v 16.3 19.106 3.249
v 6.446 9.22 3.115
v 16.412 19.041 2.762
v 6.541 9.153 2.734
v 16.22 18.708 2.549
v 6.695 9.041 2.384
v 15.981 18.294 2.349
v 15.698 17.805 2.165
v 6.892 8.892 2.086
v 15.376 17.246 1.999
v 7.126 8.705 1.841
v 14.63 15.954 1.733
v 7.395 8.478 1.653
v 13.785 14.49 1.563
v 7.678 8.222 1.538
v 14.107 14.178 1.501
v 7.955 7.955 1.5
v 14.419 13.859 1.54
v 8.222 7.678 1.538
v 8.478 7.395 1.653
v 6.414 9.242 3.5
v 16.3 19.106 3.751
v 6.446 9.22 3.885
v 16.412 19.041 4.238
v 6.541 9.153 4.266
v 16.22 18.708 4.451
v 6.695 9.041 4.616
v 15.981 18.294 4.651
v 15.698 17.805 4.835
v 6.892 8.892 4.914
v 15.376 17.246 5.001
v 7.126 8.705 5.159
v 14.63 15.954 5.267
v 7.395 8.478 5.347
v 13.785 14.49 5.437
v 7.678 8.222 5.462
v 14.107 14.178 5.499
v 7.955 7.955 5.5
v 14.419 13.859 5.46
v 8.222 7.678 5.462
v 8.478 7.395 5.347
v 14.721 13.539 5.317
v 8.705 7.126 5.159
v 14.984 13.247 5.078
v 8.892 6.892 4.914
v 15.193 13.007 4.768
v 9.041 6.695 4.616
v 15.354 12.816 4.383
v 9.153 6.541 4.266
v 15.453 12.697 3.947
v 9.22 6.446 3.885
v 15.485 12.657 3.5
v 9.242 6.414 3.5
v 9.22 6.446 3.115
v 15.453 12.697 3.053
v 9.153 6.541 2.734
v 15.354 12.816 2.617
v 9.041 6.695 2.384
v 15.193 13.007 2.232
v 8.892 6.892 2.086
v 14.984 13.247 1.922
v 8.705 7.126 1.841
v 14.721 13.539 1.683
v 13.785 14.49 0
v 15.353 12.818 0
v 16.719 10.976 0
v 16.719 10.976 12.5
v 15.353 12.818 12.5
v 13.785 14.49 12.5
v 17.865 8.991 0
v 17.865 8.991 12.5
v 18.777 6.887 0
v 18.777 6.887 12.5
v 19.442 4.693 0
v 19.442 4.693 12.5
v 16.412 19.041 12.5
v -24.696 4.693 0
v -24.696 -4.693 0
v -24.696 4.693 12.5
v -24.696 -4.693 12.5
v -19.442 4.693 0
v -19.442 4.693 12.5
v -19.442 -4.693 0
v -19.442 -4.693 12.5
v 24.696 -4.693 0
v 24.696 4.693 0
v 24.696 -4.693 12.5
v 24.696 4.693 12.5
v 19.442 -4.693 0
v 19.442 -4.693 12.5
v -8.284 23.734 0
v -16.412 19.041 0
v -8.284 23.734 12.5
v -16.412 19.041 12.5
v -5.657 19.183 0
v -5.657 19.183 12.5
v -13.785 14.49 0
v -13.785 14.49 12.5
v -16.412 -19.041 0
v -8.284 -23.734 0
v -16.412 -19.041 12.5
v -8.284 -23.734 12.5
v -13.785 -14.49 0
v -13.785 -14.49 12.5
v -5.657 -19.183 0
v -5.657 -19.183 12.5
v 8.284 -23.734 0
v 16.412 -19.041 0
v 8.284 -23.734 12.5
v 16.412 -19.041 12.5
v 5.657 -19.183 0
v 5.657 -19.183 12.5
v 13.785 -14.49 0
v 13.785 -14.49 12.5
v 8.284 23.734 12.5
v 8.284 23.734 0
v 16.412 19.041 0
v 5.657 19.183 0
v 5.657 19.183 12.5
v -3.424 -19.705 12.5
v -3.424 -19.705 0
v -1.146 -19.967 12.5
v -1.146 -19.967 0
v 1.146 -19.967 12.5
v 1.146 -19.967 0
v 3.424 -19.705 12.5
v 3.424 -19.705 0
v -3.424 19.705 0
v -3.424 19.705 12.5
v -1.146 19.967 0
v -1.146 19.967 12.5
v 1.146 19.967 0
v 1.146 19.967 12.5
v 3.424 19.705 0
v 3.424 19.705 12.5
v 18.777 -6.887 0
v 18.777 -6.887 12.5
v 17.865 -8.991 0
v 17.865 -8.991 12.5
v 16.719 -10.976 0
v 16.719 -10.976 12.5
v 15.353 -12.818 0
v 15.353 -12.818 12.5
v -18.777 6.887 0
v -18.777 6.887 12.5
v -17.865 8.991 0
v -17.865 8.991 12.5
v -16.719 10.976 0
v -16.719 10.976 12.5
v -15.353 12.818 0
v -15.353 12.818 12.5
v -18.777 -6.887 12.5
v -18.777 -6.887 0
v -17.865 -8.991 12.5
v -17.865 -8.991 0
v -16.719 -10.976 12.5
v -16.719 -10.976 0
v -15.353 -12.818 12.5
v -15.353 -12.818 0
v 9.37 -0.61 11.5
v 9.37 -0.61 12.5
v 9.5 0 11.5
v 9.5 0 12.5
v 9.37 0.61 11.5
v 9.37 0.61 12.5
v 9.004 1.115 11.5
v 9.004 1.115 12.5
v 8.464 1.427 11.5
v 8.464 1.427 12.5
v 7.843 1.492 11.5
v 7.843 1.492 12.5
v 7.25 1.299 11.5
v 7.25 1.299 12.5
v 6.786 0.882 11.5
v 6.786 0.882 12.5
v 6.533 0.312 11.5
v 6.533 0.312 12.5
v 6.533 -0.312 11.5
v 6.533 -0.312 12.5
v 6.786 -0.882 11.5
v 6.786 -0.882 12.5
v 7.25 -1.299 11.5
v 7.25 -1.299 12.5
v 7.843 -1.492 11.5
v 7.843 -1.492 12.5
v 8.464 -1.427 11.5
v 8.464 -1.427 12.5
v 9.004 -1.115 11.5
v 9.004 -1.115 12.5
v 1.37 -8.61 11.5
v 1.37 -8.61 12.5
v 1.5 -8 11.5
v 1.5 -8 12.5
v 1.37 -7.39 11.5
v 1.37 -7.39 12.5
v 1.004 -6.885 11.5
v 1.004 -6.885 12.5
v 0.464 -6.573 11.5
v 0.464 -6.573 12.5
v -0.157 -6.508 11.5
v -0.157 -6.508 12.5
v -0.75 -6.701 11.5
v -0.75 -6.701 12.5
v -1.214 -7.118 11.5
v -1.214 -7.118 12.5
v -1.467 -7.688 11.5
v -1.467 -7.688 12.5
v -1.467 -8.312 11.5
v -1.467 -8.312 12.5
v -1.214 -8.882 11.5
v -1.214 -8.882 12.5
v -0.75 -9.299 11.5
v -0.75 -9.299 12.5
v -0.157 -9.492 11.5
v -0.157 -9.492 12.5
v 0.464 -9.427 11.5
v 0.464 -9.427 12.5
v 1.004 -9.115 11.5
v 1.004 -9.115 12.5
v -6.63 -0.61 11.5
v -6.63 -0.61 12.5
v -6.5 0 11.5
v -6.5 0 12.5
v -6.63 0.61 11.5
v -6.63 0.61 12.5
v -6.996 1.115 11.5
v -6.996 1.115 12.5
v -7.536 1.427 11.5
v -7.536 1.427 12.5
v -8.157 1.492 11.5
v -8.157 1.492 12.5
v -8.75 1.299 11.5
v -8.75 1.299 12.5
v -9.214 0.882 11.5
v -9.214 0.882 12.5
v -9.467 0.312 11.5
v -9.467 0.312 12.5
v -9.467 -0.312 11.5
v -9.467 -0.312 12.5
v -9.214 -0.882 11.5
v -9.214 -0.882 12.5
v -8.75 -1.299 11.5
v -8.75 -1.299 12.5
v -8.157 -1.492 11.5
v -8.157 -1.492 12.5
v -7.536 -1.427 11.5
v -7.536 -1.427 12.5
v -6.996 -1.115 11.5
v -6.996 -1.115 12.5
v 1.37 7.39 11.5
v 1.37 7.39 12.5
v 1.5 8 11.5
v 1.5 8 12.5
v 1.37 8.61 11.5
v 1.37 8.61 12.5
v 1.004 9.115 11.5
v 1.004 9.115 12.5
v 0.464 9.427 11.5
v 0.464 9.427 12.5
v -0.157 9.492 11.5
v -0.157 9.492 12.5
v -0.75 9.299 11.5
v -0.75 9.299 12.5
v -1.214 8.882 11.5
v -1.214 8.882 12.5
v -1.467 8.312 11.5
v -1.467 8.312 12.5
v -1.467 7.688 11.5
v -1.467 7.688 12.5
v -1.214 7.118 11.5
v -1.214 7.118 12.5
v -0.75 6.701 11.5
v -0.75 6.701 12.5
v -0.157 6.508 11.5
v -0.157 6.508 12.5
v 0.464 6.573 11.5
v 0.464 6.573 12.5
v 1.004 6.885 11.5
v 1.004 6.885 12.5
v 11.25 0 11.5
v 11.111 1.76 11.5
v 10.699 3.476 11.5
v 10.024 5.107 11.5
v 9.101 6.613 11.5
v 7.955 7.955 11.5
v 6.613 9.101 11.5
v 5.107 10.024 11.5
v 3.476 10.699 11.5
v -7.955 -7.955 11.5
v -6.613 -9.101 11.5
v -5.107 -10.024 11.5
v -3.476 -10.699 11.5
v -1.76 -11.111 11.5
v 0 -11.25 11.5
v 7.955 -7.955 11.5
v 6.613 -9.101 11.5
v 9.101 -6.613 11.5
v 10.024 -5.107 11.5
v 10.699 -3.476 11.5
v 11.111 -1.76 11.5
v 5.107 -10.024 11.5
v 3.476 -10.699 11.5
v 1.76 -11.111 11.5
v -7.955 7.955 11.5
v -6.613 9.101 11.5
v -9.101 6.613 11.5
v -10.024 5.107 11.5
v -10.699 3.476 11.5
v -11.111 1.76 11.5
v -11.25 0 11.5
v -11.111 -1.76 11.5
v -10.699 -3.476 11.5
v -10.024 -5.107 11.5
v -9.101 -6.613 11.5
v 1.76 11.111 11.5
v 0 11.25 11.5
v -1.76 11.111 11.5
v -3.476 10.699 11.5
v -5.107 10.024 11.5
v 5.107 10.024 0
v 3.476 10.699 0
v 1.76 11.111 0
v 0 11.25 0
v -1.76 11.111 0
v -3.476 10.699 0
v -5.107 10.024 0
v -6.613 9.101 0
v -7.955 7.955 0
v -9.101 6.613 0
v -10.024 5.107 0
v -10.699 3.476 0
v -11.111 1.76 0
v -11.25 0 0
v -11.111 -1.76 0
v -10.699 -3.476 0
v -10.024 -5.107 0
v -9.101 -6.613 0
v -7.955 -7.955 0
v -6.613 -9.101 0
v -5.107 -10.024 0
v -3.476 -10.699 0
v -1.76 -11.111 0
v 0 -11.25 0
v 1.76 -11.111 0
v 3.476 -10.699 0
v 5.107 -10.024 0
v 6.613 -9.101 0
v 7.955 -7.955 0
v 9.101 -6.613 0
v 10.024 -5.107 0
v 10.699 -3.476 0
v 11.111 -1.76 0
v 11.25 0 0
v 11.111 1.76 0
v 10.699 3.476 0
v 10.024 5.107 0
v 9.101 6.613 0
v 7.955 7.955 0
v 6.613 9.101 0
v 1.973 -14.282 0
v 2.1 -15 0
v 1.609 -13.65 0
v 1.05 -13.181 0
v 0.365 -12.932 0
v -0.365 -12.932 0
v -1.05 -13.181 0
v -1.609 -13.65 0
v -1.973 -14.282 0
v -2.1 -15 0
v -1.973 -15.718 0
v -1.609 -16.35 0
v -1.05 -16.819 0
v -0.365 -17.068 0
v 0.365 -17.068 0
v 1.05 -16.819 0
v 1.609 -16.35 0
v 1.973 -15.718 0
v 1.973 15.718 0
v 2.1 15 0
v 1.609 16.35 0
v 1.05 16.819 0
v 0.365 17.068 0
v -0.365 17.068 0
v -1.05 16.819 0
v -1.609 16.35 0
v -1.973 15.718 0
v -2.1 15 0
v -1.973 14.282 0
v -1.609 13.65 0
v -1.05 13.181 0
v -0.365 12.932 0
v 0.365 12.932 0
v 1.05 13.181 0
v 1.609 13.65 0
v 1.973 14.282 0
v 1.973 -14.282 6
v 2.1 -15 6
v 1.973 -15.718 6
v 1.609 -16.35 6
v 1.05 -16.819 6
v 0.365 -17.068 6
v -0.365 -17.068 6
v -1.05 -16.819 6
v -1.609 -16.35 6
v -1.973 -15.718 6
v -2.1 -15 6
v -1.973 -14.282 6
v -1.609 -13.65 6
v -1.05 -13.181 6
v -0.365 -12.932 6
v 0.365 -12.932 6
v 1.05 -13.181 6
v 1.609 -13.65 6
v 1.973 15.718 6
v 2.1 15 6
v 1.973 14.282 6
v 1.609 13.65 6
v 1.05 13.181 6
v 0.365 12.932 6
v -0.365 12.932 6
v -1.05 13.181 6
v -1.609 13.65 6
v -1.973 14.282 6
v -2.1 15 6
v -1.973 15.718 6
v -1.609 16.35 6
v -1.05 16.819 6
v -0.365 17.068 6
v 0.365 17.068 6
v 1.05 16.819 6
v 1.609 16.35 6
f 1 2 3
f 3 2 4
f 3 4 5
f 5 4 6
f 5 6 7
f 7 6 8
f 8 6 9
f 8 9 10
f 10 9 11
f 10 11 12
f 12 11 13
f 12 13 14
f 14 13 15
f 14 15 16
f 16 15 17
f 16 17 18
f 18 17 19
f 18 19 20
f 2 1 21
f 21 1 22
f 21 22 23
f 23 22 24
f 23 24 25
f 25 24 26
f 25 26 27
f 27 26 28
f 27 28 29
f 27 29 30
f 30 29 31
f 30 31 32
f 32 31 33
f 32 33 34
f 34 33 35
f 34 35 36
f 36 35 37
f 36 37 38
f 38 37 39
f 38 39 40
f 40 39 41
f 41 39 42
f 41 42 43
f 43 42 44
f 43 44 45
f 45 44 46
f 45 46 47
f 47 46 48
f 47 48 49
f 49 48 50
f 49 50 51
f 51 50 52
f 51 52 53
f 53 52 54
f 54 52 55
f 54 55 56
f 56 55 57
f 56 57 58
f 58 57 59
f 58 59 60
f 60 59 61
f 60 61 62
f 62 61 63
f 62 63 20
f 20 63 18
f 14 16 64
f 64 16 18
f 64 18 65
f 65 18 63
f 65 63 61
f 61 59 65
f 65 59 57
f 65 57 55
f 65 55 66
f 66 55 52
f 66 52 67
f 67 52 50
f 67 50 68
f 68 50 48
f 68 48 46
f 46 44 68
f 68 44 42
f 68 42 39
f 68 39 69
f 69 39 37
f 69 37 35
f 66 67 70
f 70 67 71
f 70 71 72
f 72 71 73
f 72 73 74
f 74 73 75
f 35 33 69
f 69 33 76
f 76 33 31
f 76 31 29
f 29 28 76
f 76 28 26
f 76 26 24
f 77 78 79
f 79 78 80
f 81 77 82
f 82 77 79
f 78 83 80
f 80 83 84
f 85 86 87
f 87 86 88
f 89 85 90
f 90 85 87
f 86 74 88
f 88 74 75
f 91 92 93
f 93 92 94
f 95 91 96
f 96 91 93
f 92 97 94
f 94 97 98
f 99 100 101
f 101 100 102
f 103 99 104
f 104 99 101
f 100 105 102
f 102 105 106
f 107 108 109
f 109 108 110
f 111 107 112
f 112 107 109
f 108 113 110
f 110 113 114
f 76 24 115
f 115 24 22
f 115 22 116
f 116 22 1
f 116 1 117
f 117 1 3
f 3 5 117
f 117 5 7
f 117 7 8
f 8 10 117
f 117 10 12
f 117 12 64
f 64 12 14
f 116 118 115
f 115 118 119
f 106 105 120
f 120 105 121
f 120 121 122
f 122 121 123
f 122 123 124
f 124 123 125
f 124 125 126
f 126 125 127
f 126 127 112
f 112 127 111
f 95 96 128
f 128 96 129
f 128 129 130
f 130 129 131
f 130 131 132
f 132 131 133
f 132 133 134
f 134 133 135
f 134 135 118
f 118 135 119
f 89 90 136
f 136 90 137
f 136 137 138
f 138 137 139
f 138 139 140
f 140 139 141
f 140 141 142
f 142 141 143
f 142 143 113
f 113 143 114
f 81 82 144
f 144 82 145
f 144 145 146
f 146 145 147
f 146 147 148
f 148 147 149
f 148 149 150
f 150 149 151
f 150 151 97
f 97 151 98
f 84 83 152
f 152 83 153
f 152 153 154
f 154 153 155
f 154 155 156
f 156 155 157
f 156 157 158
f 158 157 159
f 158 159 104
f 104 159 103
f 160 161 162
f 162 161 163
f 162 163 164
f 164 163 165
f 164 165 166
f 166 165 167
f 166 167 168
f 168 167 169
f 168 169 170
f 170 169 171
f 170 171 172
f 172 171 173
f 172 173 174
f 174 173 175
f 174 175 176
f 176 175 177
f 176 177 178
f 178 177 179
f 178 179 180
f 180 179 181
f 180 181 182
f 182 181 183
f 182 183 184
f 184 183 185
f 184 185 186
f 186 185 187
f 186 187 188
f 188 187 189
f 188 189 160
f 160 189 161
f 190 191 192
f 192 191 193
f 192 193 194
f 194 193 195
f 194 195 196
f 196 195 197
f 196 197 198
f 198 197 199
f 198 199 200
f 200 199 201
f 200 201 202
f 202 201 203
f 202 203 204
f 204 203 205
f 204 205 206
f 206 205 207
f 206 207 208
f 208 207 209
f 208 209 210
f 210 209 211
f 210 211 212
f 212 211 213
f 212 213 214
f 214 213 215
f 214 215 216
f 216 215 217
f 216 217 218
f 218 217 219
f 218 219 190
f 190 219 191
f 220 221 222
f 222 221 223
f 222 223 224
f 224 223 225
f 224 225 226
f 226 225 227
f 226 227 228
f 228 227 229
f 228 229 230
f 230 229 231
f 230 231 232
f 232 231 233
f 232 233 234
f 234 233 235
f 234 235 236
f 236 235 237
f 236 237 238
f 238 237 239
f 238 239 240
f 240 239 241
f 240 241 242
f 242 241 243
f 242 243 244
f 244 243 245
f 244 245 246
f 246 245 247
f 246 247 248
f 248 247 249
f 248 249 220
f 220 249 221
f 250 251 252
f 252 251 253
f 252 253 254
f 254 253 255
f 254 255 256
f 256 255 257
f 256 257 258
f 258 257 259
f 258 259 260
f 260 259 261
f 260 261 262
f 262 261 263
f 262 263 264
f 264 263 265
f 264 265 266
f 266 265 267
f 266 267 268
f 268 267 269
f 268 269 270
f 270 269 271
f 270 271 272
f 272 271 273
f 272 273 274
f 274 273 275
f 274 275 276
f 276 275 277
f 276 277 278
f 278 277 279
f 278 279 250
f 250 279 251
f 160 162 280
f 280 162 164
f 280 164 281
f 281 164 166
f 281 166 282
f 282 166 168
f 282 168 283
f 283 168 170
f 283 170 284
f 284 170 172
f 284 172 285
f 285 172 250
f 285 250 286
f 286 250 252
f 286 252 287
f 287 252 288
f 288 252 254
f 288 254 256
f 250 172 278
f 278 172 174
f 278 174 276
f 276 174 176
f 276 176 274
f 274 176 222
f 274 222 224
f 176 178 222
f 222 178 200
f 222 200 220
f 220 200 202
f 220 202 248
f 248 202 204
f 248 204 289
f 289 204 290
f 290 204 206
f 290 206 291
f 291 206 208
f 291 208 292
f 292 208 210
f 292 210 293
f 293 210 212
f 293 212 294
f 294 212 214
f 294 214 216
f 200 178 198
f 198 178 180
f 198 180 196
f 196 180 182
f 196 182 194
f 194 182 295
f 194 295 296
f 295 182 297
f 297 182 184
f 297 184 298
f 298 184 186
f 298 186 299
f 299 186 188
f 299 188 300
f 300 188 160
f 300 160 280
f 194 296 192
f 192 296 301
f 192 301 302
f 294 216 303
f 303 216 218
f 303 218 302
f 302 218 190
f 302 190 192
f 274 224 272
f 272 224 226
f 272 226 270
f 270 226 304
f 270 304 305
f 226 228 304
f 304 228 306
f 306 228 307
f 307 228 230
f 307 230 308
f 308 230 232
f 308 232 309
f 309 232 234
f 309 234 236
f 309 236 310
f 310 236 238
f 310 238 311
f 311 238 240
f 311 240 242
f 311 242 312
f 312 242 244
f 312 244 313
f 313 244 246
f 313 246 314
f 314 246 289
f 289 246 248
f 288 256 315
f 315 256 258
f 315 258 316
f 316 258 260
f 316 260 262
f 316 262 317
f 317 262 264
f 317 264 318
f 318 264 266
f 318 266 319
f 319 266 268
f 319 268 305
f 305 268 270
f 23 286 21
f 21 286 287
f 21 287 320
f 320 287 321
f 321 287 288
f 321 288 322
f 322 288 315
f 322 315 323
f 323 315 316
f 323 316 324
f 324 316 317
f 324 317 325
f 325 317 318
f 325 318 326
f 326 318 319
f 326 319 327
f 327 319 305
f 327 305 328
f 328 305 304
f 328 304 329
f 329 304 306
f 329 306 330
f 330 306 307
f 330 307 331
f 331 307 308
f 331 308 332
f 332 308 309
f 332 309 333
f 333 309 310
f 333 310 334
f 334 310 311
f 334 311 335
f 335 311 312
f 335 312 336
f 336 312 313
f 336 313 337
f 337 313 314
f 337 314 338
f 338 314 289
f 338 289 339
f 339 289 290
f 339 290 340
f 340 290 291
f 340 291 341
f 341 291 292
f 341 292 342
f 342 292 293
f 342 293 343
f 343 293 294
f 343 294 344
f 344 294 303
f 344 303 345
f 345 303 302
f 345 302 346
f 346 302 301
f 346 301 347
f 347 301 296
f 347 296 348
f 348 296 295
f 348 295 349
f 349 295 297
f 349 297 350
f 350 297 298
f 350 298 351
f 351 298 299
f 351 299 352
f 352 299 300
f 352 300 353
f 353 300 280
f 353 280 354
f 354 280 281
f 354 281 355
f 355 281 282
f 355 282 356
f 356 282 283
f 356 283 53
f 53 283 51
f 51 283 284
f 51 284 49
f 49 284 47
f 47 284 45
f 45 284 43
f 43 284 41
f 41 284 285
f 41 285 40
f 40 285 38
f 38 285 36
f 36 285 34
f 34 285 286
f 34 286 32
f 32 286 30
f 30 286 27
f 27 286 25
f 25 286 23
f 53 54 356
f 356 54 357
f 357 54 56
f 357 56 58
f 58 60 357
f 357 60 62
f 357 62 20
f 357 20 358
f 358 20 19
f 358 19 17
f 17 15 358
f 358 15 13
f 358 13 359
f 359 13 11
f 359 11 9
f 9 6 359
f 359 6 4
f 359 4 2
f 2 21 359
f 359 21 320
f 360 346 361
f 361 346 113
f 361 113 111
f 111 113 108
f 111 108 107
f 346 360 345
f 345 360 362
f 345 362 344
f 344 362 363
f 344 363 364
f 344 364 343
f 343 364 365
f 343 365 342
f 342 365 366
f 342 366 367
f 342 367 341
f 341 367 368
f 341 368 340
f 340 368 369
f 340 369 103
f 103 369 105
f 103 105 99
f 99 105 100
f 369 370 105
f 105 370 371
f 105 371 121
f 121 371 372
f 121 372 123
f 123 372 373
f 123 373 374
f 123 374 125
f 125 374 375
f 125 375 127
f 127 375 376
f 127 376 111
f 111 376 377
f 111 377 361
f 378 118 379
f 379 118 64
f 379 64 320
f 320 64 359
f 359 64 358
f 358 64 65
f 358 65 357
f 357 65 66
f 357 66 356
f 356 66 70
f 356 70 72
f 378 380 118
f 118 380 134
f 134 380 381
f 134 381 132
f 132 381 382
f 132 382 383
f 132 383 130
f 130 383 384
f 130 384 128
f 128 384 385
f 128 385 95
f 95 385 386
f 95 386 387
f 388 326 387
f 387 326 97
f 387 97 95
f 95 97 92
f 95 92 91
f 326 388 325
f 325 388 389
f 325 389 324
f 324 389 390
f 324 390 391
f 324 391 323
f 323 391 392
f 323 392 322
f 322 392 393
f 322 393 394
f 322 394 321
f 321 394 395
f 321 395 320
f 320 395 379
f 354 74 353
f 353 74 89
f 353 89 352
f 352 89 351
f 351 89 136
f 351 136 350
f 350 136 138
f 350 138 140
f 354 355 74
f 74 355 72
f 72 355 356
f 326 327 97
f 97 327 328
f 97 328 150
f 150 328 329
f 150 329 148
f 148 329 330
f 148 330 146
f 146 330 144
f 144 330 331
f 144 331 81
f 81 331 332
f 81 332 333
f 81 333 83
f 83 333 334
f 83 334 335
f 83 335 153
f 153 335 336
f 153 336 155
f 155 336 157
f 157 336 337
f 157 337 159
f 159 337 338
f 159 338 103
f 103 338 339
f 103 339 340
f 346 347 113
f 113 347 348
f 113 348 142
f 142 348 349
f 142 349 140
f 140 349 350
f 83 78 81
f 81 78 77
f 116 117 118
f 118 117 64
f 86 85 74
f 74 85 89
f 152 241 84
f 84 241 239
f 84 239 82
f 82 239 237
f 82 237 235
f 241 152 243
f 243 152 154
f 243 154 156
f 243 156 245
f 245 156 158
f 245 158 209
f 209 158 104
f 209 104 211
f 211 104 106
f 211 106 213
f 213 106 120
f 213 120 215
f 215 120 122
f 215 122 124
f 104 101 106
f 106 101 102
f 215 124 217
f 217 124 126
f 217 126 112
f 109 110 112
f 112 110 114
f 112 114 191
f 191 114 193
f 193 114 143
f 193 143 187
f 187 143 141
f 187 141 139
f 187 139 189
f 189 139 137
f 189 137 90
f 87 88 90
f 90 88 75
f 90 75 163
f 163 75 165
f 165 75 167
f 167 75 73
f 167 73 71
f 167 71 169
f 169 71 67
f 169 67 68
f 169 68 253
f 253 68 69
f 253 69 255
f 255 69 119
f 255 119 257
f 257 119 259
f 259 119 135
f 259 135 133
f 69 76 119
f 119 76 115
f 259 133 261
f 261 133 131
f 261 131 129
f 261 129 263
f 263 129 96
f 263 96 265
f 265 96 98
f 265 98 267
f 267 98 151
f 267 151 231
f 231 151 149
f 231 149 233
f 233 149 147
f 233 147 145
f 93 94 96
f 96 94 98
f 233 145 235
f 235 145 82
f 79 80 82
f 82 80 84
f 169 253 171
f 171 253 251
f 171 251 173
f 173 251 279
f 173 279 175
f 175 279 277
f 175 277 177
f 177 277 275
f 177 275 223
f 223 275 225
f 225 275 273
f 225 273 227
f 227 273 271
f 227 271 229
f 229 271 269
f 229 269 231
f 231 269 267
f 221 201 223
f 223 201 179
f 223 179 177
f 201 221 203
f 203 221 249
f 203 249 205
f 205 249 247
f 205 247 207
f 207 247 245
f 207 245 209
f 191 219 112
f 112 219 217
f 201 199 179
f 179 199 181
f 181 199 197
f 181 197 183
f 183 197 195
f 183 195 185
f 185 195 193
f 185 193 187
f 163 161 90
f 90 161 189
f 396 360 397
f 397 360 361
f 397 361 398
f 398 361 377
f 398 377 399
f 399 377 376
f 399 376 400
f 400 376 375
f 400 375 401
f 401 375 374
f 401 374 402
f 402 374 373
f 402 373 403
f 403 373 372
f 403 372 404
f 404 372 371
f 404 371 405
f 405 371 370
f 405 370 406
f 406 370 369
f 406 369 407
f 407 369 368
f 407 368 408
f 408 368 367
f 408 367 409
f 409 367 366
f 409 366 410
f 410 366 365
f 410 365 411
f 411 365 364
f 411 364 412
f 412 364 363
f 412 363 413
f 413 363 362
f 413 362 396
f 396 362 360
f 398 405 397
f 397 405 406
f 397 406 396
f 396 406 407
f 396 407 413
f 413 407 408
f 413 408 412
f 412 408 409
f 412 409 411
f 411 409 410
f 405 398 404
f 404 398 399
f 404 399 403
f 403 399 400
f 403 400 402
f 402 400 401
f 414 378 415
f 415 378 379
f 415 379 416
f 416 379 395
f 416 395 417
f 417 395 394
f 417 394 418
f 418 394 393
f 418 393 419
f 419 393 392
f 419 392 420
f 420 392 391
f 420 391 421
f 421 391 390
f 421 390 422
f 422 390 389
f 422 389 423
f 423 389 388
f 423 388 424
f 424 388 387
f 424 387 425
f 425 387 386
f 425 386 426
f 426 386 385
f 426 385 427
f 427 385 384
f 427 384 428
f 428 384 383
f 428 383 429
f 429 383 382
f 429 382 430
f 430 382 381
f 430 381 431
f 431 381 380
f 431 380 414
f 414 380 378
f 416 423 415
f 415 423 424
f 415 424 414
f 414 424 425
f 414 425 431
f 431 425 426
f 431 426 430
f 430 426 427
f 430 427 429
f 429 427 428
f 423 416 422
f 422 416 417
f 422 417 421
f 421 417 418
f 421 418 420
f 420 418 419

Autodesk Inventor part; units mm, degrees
ref_plane "YZ Plane" through (0, 0, 0) normal (1, 0, 0) x (0, 1, 0)
sketch "Эскиз1" plane through (0, 0, 0) normal (0, 0, 1) x (1, 0, 0)
  line L0 (0, 0) -> (34.5691, 5.4752) construction
  line L1 (0, 0) -> (35, 0) construction
  line L2 (0, 0) -> (34.5691, -5.4752) construction
  circle A0 centre (0, 0) radius 11.25
  circle A1 centre (0, 0) radius 15
  circle A2 centre (0, 0) radius 20
  circle A3 centre (0, 0) radius 30.0525
  circle A4 centre (0, 0) radius 32.0038
  circle A5 centre (0, 0) radius 35
  line L3 (0, 0) -> (17.5, -30.3109) construction
  circle A6 centre (0, -8) radius 1.5
  circle A7 centre (-8, 0) radius 1.5
  line L4 (0, 0) -> (-35, 0) construction
  line L5 (-29.6307, -4.693) -> (-19.4416, -4.693) construction
  line L6 (-29.6307, -4.693) -> (-19.4416, -4.693)
  line L7 (-29.6839, -4.693) -> (-29.6839, 4.693)
  line L8 (-19.4416, 4.693) -> (-34.6839, 4.693) construction
  line L9 (-19.4416, -4.693) -> (-34.6839, -4.693) construction
  line L10 (10.751, 28.0074) -> (5.6565, 19.1834) construction
  line L11 (5.6565, 19.1834) -> (13.2777, 32.3837) construction
  line L12 (-5.6565, 19.1834) -> (-13.2777, 32.3837) construction
  circle A8 centre (0, 8) radius 1.5
  line L13 (0, 0) -> (-17.5, 30.3109) construction
  line L14 (-5.6565, 19.1834) -> (-13.2777, 32.3837)
  line L15 (0, 0) -> (17.5, 30.3109) construction
  line L16 (0, 0) -> (-17.5, -30.3109) construction
  line L17 (5.6565, 19.1834) -> (13.2777, 32.3837)
  line L18 (13.3758, 26.5536) -> (16.0133, 31.1219)
  line L19 (16.3082, 24.8605) -> (18.9457, 29.4289)
  line L20 (18.9457, 29.4289) -> (17.4457, 26.8308) construction
  line L21 (29.6307, 4.693) -> (19.4416, 4.693)
  line L22 (18.8796, -23.3144) -> (13.7851, -14.4904) construction
  line L23 (13.7851, -14.4904) -> (21.4063, -27.6907) construction
  line L24 (29.6839, 4.693) -> (29.6839, 1.693)
  line L25 (29.6839, 4.693) -> (29.6839, -4.693)
  line L26 (29.6839, -4.693) -> (29.6839, -1.693) construction
  circle A9 centre (8, 0) radius 1.5
  line L27 (-18.8796, 23.3144) -> (-13.7851, 14.4904) construction
  line L28 (-13.7851, 14.4904) -> (-21.4063, 27.6907) construction
  line L29 (-18.8796, 23.3144) -> (-13.7851, 14.4904)
  line L30 (-13.7851, 14.4904) -> (-21.4063, 27.6907)
  line L31 (-18.9063, 23.3605) -> (-10.7777, 28.0536)
  line L32 (-16.3082, 24.8605) -> (-18.9457, 29.4289)
  line L33 (-13.3758, 26.5536) -> (-16.0133, 31.1219)
  line L34 (-13.7851, -14.4904) -> (-21.4063, -27.6907) construction
  line L35 (-10.751, -28.0074) -> (-5.6565, -19.1834) construction
  line L36 (-13.7851, -14.4904) -> (-21.4063, -27.6907)
  line L37 (-10.751, -28.0074) -> (-5.6565, -19.1834)
  line L38 (13.7851, 14.4904) -> (21.4063, 27.6907) construction
  line L39 (21.4063, 27.6907) -> (20.1674, 25.5449) construction
  line L40 (10.7777, 28.0536) -> (18.9063, 23.3605)
  line L41 (13.7851, 14.4904) -> (21.4063, 27.6907)
  line L42 (10.751, 28.0074) -> (5.6565, 19.1834)
  line L43 (0, 0) -> (21.2118, 27.8399) construction
  line L44 (0, 0) -> (8, 0) construction
  line L45 (0, 0) -> (0, 8) construction
  line L46 (-10.7777, -28.0536) -> (-18.9063, -23.3605)
  line L47 (-13.3758, -26.5536) -> (-16.0133, -31.1219)
  line L48 (-16.3082, -24.8605) -> (-18.9457, -29.4289)
  line L49 (-5.6565, -19.1834) -> (-13.2777, -32.3837) construction
  line L50 (5.6565, -19.1834) -> (13.2777, -32.3837) construction
  line L51 (-5.6565, -19.1834) -> (-13.2777, -32.3837)
  line L52 (18.8796, -23.3144) -> (13.7851, -14.4904)
  line L53 (5.6565, -19.1834) -> (13.2777, -32.3837)
  line L54 (16.3082, -24.8605) -> (18.9457, -29.4289)
  line L55 (13.7851, -14.4904) -> (21.4063, -27.6907)
  line L56 (13.3758, -26.5536) -> (16.0133, -31.1219)
  line L57 (18.9063, -23.3605) -> (10.7777, -28.0536)
  line L58 (27.6414, 16.1308) -> (28.831, 19.8437)
  line L59 (24.938, 20.0584) -> (28.831, 19.8437)
  line L60 (24.7499, 20.2901) -> (25.3388, 24.1443)
  line L61 (21.4607, 23.742) -> (25.3388, 24.1443)
  line L62 (17.4457, 26.8308) -> (21.2118, 27.8399)
  line L63 (21.2384, 23.9411) -> (21.2118, 27.8399)
  line L64 (-19.4416, 4.693) -> (-34.6839, 4.693)
  line L65 (-17.4453, 26.8311) -> (-21.2113, 27.8403)
  line L66 (-21.238, 23.9415) -> (-21.2113, 27.8403)
  line L67 (-21.4603, 23.7424) -> (-25.3384, 24.1447)
  line L68 (-24.7496, 20.2905) -> (-25.3384, 24.1447)
  line L69 (-24.9377, 20.0588) -> (-28.8307, 19.8442)
  line L70 (-27.6411, 16.1312) -> (-28.8307, 19.8442)
  line L71 (-27.7903, 15.8727) -> (-31.6007, 15.0465)
  line L72 (-29.8401, 11.5678) -> (-31.6007, 15.0465)
  line L73 (-29.9467, 11.289) -> (-33.5789, 9.8719)
  line L74 (-31.2916, 6.7145) -> (-33.5789, 9.8719)
  line L75 (-31.3528, 6.4224) -> (-34.716, 4.45)
  line L76 (-29.6839, -1.693) -> (-34.959, -1.693)
  line L77 (-19.4416, -4.693) -> (-34.6839, -4.693)
  line L78 (-29.6839, 1.693) -> (-34.959, 1.693)
  line L79 (-31.959, 1.693) -> (-34.716, 4.45)
  line L80 (-31.9591, -1.6925) -> (-34.716, -4.4494)
  line L81 (-31.3529, -6.4219) -> (-34.716, -4.4494)
  line L82 (-31.2917, -6.714) -> (-33.5791, -9.8714)
  line L83 (-29.9469, -11.2885) -> (-33.5791, -9.8714)
  line L84 (-29.8403, -11.5673) -> (-31.6009, -15.046)
  line L85 (-27.7906, -15.8723) -> (-31.6009, -15.046)
  line L86 (-24.938, -20.0584) -> (-28.831, -19.8437)
  line L87 (-27.6414, -16.1308) -> (-28.831, -19.8437)
  line L88 (-17.4457, -26.8308) -> (-21.2118, -27.8399)
  line L89 (-21.2384, -23.9411) -> (-21.2118, -27.8399)
  line L90 (-21.4607, -23.742) -> (-25.3388, -24.1443)
  line L91 (-24.7499, -20.2901) -> (-25.3388, -24.1443)
  line L92 (-14.5138, -28.5236) -> (-13.5047, -32.2897)
  line L93 (-10.1149, -30.3634) -> (-13.5047, -32.2897)
  line L94 (-9.8313, -30.4564) -> (-8.2407, -34.016)
  line L95 (-5.1973, -31.579) -> (-8.2407, -34.016)
  line L96 (-4.9026, -31.6261) -> (-2.7702, -34.8902)
  line L97 (-0.1495, -32.0035) -> (-2.7702, -34.8902)
  line L98 (0.149, -32.0035) -> (2.7697, -34.8902)
  line L99 (-14.5133, 28.5238) -> (-13.5042, 32.2899)
  line L100 (-10.1144, 30.3635) -> (-13.5042, 32.2899)
  line L101 (-9.8308, 30.4565) -> (-8.2401, 34.0162)
  line L102 (-5.1968, 31.5791) -> (-8.2401, 34.0162)
  line L103 (14.5138, 28.5236) -> (13.5047, 32.2897)
  line L104 (10.1149, 30.3634) -> (13.5047, 32.2897)
  line L105 (9.8313, 30.4564) -> (8.2407, 34.016)
  line L106 (5.1973, 31.579) -> (8.2407, 34.016)
  line L107 (4.9026, 31.6261) -> (2.7702, 34.8902)
  line L108 (0.1495, 32.0035) -> (2.7702, 34.8902)
  line L109 (-4.9021, 31.6262) -> (-2.7697, 34.8902)
  line L110 (-0.149, 32.0035) -> (-2.7697, 34.8902)
  line L111 (14.5133, -28.5238) -> (13.5042, -32.2899)
  line L112 (5.1968, -31.5791) -> (8.2401, -34.0162)
  line L113 (9.8308, -30.4565) -> (8.2401, -34.0162)
  line L114 (10.1144, -30.3635) -> (13.5042, -32.2899)
  line L115 (17.4453, -26.8311) -> (21.2113, -27.8403)
  line L116 (21.238, -23.9415) -> (21.2113, -27.8403)
  line L117 (4.9021, -31.6262) -> (2.7697, -34.8902)
  line L118 (19.4416, -4.693) -> (34.6839, -4.693)
  line L119 (29.6839, -1.693) -> (34.959, -1.693)
  line L120 (21.4603, -23.7424) -> (25.3384, -24.1447)
  line L121 (24.7496, -20.2905) -> (25.3384, -24.1447)
  line L122 (24.9377, -20.0588) -> (28.8307, -19.8442)
  line L123 (27.6411, -16.1312) -> (28.8307, -19.8442)
  line L124 (27.7903, -15.8727) -> (31.6007, -15.0465)
  line L125 (29.9467, -11.289) -> (33.5789, -9.8719)
  line L126 (31.2916, -6.7145) -> (33.5789, -9.8719)
  line L127 (31.3528, -6.4224) -> (34.716, -4.45)
  line L128 (31.959, -1.693) -> (34.716, -4.45)
  line L129 (29.8401, -11.5678) -> (31.6007, -15.0465)
  line L130 (34.5691, 5.4752) -> (29.6307, 4.693) construction
  line L131 (19.4416, 4.693) -> (34.6839, 4.693)
  line L132 (34.6839, 4.693) -> (29.6839, 4.693) construction
  line L133 (29.6839, 1.693) -> (34.959, 1.693)
  line L134 (29.8403, 11.5673) -> (31.6009, 15.046)
  line L135 (31.2917, 6.714) -> (33.5791, 9.8714)
  line L136 (31.9591, 1.6925) -> (34.716, 4.4494)
  line L137 (31.3529, 6.4219) -> (34.716, 4.4494)
  line L138 (29.9469, 11.2885) -> (33.5791, 9.8714)
  line L139 (27.7906, 15.8723) -> (31.6009, 15.046)
  circle A10 centre (0, 0) radius 36.5
  line L140 (0, 0) -> (-24.7487, 24.7487) construction
  line L141 (0, 0) -> (35, 0) construction
  line L142 (0, 0) -> (-24.6962, 0) construction
  line L143 (-24.6962, -4.693) -> (-24.6962, 4.693)
  line L144 (-8.2838, -23.734) -> (-16.4124, -19.041)
  line L145 (16.4124, -19.041) -> (8.2838, -23.734)
  line L146 (24.6962, 4.693) -> (24.6962, -4.693)
  line L147 (8.2838, 23.734) -> (16.4124, 19.041)
  line L148 (-16.4124, 19.041) -> (-8.2838, 23.734)
  line L149 (0, 0) -> (21.2503, 21.2503) construction
  line L150 (0, 0) -> (30.0525, 0) construction
  line L151 (14.1421, 14.1421) -> (23.5912, 4.693)
  line L152 (23.5912, 4.693) -> (-6.168, 34.4522)
  circle A11 centre (0, 15) radius 2.1
  circle A12 centre (0, -15) radius 2.1
  point P0 (0, 0)
  point P1 (18.9062, 23.3604)
  point P2 (18.9055, 23.3609)
  point P3 (10.7784, 28.0531)
  point P4 (-10.7784, 28.0531)
  point P5 (-18.9055, 23.3609)
  point P6 (-18.9062, 23.3604)
  point P7 (-29.6838, 4.693)
  point P8 (-29.6839, 4.6922)
  point P9 (-29.6839, -4.6922)
  point P10 (-18.9055, -23.3609)
  point P11 (-10.7784, -28.0531)
  point P12 (-10.7776, -28.0534)
  point P13 (10.7776, -28.0534)
  point P14 (10.7784, -28.0531)
  point P15 (18.9055, -23.3609)
  point P16 (29.6839, -4.6922)
  point P17 (29.6839, 4.6922)
  point P18 (29.6838, 4.693)
  point P19 (-29.6838, -4.693)
  point P20 (-18.9062, -23.3604)
  point P21 (18.9062, -23.3604)
  point P22 (29.6838, -4.693)
  point P23 (10.7776, 28.0534)
  point P24 (-10.7776, 28.0534)
  point P25 (-24.6962, 4.693)
  point P26 (24.6962, -4.693)
  dimension "d10" = 70
  dimension "d21" = 60.105
  dimension "d31" = 30
  dimension "d11" = 40
  dimension "d12" = 9
  dimension "d13" = 5
  dimension "d14" = 360
  dimension "d15" = 360
  dimension "d16" = 5
  dimension "d17" = 90
  dimension "d18" = 3
  dimension "d19" = 3
  dimension "d20" = 360
  dimension "d22" = 3
  dimension "d23" = 45
  dimension "d24" = 45.392
  dimension "d25" = 360
  dimension "d26" = 22.5
  dimension "d27" = 8
  dimension "d28" = 3
  dimension "d29" = 8
  dimension "d30" = 3
  dimension "d32" = 73
  dimension "d45" = 135
  dimension "d48" = 360
  dimension "d54" = 45
  dimension "d63" = 4.2
extrude "Выдавливание1" add sketch "Эскиз1" along normal blind 11.5 contours A1 A12 A11 | A11 A1 | A1 A11 | A12 A1 | A1 A12 | A2
extrude "Выдавливание4" add sketch "Эскиз1" along normal blind 1 from surface at 11.5 contours A0 | A1 A12 A11 | A11 A1 | A1 A11 | A12 A1 | A1 A12 | A2
ref_plane "РабПлоскость1" through (-24.7024, -23.7395, 10.5) normal (0, 0, 1) x (1, 0, 0)
ref_plane "РабПлоскость2" through (-24.7024, -23.7395, 9) normal (0, 0, -1) x (0, 1, 0)
extrude "Выдавливание7" add sketch "Эскиз1" along normal blind 12.5 contours A2 L21 L146 L118 | L52 L145 L53 A2 | A2 L17 L152 L41 | L152 L17 L147 L41 | L37 L144 L36 A2 | A2 L29 L148 L14 | L6 L143 L64 A2
ref_plane "РабПлоскость3" through (23.5912, 4.693, 0) normal (0.7071068, 0.7071068, 0) x (-0.7071068, 0.7071068, 0)
sketch "Эскиз2" plane through (23.5912, 4.693, 0) normal (0.7071068, 0.7071068, 0) x (-0.7071068, 0.7071068, 0)
  line L0 (13.363, 0) -> (13.363, 3.5)
  line L1 (13.8618, 0) -> (13.8618, 12.5) projected
  line L2 (13.363, 0) -> (16.863, 0) construction
  circle A0 centre (13.363, 3.5) radius 2
  dimension "d56" = 3.5
  dimension "d57" = 90
  dimension "d58" = 4
extrude "Выдавливание8" cut sketch "Эскиз2" along normal blind 5.1 and the other way blind 9
sketch "Эскиз3" plane through (0, 0, 0) normal (0, 0, -1) x (-1, 0, 0)
  point P0 (0, 0)
extrude "Выдавливание9" cut sketch "Эскиз1" along normal blind 6 contours A0 | A11 A1 | A1 A11 | A12 A1 | A1 A12 | A6 | A7 | A8 | A9
properties part number "inside_part_wheel"
